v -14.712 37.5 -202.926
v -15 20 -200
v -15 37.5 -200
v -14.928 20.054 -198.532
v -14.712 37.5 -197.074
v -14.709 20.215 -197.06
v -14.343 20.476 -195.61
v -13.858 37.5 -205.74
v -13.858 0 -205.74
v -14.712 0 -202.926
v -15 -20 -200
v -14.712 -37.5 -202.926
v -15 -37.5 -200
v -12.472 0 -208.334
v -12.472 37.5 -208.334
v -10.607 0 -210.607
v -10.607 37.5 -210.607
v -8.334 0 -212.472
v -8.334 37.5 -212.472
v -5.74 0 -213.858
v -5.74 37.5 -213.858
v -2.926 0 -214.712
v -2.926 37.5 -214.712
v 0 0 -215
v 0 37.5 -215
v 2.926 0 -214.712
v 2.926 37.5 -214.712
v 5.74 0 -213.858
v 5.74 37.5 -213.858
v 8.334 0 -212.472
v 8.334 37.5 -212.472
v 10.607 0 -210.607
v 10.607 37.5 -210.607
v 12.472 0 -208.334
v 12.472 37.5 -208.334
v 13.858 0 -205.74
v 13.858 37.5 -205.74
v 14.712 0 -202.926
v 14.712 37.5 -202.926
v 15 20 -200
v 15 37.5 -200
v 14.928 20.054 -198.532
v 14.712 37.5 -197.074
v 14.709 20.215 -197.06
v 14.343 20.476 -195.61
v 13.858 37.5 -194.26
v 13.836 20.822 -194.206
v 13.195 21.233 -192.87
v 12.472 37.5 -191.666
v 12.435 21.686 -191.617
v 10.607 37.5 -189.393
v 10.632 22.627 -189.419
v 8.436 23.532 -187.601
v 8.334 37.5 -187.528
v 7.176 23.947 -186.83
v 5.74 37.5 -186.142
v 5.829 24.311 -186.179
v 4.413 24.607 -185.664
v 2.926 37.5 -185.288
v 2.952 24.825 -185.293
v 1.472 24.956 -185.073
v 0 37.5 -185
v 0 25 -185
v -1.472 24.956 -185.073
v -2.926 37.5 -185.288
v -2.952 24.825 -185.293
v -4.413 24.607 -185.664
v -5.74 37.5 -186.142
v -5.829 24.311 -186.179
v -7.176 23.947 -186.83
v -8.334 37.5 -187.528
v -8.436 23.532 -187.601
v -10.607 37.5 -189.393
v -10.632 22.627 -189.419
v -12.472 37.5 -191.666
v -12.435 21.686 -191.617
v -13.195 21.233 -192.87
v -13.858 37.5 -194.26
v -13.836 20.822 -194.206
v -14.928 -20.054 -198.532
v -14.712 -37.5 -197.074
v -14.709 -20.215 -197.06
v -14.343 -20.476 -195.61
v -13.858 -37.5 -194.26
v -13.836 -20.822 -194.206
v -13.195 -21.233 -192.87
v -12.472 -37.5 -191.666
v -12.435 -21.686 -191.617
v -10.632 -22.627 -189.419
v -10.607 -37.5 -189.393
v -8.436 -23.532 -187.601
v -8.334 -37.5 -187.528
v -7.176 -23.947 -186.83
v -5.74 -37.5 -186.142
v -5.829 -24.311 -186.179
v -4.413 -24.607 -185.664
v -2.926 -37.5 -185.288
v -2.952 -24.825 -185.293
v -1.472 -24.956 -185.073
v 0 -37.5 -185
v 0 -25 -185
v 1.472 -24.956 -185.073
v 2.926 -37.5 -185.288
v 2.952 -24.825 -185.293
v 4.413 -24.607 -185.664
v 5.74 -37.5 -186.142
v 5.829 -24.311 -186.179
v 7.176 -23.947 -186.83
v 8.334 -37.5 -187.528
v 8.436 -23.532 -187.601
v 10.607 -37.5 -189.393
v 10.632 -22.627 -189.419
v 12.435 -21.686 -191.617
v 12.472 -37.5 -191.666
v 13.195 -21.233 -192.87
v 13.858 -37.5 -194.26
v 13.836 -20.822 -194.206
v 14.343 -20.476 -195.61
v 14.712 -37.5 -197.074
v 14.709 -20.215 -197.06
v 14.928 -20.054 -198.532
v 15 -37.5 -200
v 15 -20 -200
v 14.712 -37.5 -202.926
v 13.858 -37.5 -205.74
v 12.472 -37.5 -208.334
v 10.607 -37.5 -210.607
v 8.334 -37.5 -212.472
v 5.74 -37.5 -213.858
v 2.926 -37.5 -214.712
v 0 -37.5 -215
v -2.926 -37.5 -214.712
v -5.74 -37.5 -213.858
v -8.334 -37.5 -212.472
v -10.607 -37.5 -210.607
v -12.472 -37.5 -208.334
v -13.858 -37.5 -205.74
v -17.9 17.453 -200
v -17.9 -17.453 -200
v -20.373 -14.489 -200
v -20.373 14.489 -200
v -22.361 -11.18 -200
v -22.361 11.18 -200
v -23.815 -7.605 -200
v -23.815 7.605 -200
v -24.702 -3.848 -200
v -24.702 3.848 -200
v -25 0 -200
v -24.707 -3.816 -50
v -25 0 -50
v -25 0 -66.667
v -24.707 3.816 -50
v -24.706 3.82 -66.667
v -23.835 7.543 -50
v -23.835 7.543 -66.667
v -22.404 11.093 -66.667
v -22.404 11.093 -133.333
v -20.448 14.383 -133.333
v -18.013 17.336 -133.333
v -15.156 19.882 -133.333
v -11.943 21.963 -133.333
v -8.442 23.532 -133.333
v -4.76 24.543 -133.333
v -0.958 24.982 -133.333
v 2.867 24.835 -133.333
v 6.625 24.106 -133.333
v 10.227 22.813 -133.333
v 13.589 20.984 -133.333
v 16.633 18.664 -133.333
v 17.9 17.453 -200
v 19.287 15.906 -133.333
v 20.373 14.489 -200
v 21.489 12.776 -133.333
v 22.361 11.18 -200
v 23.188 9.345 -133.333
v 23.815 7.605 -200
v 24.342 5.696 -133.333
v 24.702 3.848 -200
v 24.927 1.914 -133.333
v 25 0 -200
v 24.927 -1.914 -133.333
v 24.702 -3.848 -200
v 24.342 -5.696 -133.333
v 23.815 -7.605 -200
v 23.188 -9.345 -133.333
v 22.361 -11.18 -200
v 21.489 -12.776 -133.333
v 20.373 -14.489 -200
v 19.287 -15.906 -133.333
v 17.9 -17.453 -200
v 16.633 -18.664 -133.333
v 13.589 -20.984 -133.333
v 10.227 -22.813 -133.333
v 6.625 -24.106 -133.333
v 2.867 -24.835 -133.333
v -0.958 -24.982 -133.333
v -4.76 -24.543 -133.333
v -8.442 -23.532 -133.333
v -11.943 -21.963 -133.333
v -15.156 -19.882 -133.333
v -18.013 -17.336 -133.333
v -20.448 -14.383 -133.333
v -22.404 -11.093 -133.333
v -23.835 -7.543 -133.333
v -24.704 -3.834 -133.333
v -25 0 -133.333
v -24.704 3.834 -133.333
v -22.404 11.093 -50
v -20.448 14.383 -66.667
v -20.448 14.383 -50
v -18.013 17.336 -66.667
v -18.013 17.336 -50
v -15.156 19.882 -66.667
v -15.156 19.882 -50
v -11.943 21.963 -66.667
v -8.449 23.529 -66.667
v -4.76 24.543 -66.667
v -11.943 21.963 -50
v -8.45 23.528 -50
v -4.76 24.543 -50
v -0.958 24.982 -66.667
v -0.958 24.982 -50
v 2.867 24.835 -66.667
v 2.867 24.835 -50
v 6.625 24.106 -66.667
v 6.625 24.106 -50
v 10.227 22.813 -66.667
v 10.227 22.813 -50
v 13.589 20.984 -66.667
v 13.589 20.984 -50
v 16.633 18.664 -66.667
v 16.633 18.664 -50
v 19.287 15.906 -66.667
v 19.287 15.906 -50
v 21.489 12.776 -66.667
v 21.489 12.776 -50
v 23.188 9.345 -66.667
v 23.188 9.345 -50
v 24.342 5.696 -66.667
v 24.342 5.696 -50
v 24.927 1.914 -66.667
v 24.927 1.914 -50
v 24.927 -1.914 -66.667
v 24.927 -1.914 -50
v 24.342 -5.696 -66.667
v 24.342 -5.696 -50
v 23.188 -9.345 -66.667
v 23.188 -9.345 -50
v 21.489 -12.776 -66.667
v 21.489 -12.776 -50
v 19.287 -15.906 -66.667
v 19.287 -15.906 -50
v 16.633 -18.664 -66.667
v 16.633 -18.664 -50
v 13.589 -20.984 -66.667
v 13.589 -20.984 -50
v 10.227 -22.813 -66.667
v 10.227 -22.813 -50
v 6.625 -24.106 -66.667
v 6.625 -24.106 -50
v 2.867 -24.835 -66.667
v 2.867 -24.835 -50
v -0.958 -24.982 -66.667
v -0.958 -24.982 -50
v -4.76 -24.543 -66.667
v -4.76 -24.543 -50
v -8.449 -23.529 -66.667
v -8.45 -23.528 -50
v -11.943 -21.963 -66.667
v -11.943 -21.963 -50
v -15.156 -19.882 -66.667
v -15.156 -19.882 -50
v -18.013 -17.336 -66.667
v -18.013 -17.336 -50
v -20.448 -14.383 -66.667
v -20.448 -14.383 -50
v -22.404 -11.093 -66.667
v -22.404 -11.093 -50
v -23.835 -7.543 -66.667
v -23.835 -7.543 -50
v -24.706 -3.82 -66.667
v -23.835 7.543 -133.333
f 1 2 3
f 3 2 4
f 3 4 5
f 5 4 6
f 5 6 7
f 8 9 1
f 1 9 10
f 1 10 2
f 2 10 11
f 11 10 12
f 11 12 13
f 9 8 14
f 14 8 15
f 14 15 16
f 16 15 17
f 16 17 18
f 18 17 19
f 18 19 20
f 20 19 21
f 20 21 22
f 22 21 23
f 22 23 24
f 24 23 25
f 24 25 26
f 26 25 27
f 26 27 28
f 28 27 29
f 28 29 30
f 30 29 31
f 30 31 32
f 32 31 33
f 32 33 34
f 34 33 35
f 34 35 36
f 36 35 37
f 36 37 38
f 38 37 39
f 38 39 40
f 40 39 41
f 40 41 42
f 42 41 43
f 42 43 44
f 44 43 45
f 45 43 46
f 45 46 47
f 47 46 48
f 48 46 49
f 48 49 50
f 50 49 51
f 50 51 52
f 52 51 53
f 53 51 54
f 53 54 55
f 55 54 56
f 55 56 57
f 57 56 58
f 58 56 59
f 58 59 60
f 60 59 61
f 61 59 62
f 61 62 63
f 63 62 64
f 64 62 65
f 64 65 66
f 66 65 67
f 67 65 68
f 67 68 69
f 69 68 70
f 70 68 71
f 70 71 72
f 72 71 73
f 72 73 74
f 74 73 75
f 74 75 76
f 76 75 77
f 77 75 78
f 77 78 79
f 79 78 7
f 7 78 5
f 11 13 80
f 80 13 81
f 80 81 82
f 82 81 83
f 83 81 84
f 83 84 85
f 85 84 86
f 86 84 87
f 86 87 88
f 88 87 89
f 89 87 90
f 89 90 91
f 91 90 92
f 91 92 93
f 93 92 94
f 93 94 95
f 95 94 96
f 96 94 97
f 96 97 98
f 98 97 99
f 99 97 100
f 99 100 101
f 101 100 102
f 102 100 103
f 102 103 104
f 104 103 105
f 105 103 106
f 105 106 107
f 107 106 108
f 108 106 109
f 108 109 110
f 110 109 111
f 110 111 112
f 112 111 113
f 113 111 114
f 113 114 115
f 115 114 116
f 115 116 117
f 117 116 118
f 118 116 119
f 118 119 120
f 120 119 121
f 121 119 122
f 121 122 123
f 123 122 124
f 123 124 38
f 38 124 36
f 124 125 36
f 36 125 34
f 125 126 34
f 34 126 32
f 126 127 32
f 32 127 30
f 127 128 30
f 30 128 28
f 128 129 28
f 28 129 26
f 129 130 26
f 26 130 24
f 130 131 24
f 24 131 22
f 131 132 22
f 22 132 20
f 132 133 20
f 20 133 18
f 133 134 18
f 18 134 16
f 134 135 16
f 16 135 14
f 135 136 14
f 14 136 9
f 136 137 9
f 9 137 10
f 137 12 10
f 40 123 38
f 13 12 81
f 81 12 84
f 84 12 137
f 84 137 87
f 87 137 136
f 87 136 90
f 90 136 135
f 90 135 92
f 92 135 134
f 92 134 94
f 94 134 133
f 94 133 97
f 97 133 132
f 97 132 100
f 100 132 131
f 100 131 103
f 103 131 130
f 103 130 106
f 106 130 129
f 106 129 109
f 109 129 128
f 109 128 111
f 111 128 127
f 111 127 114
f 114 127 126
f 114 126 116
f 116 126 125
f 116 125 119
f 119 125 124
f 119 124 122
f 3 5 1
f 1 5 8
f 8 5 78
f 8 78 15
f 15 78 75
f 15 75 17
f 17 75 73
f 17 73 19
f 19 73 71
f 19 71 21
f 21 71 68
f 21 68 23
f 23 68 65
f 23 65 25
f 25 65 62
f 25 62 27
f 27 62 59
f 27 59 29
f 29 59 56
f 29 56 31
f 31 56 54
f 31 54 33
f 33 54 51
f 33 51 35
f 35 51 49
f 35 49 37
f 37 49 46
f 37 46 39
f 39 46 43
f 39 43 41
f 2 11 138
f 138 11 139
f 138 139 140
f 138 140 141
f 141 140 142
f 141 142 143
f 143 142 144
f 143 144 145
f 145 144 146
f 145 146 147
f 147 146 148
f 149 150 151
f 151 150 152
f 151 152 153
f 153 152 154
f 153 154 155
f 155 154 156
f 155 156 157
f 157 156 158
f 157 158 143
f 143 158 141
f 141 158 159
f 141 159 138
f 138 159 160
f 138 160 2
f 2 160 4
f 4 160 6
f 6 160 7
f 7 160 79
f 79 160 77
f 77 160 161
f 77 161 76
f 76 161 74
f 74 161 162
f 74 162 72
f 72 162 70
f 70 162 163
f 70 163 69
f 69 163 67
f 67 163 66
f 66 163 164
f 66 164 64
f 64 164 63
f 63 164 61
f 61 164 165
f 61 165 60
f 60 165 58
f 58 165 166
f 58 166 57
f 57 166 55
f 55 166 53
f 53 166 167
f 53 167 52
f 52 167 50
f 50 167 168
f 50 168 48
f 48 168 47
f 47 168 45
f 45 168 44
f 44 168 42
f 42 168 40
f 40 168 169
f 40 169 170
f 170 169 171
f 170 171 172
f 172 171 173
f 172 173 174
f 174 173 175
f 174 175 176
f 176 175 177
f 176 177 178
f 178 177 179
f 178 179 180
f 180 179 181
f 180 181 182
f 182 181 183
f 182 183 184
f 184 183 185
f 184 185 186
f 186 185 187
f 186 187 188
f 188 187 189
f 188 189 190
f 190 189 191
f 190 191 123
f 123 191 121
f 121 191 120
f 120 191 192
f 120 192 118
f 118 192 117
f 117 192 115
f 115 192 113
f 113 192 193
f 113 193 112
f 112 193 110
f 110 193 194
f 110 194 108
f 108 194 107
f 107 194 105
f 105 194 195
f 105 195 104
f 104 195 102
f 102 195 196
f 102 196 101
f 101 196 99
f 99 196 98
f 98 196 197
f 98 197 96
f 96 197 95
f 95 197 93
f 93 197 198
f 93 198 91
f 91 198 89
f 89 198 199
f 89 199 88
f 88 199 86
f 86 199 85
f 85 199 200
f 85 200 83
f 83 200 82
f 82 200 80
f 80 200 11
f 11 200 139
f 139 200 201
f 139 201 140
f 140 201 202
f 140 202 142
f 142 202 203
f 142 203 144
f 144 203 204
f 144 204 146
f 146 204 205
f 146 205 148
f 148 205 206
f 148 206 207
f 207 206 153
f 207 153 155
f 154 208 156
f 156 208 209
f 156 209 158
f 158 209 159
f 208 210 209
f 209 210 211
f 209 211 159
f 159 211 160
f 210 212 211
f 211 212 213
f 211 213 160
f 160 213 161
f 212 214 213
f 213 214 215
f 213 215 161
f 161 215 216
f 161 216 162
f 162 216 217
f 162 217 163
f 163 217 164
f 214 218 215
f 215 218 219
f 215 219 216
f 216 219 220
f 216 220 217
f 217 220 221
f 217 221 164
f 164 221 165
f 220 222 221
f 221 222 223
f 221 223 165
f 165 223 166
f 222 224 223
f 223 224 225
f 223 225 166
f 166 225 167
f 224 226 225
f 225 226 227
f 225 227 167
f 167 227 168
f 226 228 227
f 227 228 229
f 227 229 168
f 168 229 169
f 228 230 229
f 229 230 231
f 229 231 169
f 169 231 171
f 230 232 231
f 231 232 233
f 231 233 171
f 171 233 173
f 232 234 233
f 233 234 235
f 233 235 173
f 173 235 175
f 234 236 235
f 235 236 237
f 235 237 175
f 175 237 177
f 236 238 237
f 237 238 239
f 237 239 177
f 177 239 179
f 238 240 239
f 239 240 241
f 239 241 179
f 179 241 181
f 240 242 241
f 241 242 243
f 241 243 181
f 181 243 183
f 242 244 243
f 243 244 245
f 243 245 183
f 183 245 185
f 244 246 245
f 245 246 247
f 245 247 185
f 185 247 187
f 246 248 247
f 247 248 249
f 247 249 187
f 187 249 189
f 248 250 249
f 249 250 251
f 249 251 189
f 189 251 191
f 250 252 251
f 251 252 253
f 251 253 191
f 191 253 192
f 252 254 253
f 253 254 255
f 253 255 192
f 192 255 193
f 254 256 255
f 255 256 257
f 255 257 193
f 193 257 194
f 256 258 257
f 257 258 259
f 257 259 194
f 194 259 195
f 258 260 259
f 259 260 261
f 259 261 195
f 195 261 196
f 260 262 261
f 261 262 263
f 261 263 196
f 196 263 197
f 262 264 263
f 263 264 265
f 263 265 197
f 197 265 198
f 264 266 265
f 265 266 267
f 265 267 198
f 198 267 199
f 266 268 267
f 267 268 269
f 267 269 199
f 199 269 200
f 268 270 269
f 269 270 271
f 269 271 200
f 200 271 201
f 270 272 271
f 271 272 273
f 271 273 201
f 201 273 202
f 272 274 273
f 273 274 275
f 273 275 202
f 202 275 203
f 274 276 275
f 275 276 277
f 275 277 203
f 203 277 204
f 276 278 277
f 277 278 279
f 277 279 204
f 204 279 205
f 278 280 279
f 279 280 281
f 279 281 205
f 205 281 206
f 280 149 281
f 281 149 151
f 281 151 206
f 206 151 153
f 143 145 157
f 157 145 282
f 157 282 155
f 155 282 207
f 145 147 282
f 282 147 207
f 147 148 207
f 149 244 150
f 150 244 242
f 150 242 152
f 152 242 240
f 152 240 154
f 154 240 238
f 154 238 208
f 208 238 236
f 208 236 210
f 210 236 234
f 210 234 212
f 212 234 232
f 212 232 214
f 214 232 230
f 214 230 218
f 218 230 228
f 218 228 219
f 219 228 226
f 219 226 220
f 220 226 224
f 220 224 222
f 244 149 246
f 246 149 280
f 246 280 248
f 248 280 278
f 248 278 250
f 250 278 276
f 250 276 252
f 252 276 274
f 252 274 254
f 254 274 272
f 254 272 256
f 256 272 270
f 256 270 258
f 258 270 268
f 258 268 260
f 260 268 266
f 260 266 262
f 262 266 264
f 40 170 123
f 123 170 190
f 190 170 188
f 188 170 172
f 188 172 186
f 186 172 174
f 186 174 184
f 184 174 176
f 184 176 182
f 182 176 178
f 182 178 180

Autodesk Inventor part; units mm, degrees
sketch "スケッチ3" plane through (0, 0, 0) normal (0, 0, 1) x (1, 0, 0)
  circle A0 centre (0, 0) radius 25
  dimension "d7" = 50
extrude "押し出し2" add sketch "スケッチ3" against normal blind 200
sketch "スケッチ4" plane through (0, 0, 0) normal (0, 1, 0) x (-1, 0, 0)
  line L0 (50.5565, -50) -> (-56.0674, -50)
  line L1 (-56.0674, -50) -> (-56.0674, 47.5615)
  line L2 (-56.0674, 47.5615) -> (50.5565, 47.5615)
  line L3 (50.5565, 47.5615) -> (50.5565, -50)
  line L4 (-77.3922, 0) -> (71.8813, 0) projected
  point P0 (0, 0)
  dimension "d10" = 50
extrude "押し出し3" cut sketch "スケッチ4" along normal mid plane 200
sketch "スケッチ6" plane through (0, 0, 0) normal (0, 1, 0) x (-1, 0, 0)
  circle A0 centre (0, -200) radius 15
  line L0 (-35, 0) -> (35, 0) projected
  point P0 (0, 0)
  dimension "d13" = 30
  dimension "d14" = 200
extrude "押し出し4" add sketch "スケッチ6" along normal mid plane 75
properties part number "UpperarmY"
